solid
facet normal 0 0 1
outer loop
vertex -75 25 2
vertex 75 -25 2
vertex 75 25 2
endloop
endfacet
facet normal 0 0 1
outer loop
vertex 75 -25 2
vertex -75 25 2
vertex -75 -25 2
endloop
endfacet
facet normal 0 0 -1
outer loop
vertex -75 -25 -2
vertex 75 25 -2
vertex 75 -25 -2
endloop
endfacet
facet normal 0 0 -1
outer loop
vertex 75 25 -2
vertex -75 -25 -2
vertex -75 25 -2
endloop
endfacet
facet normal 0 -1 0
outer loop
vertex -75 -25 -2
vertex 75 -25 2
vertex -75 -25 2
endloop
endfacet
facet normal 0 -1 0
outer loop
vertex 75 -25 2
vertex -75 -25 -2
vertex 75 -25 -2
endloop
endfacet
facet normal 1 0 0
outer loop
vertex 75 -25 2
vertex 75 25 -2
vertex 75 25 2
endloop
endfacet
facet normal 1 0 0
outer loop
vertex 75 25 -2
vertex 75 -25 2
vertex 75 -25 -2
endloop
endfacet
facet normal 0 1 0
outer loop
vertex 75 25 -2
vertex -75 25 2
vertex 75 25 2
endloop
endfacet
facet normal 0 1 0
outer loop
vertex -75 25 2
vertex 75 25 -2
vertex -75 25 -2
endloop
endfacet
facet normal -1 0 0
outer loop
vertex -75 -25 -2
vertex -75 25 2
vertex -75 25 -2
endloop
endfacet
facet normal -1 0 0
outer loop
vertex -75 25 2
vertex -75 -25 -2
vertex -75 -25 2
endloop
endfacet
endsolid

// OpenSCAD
// ========================================
// a plate 150 mm wide 50 mm deep and 4 mm thick
// NeuroCAD canonical IR; dimensions are millimetres
// ========================================
$fn = 48;

cube(size=[150, 50, 4], center=true);
